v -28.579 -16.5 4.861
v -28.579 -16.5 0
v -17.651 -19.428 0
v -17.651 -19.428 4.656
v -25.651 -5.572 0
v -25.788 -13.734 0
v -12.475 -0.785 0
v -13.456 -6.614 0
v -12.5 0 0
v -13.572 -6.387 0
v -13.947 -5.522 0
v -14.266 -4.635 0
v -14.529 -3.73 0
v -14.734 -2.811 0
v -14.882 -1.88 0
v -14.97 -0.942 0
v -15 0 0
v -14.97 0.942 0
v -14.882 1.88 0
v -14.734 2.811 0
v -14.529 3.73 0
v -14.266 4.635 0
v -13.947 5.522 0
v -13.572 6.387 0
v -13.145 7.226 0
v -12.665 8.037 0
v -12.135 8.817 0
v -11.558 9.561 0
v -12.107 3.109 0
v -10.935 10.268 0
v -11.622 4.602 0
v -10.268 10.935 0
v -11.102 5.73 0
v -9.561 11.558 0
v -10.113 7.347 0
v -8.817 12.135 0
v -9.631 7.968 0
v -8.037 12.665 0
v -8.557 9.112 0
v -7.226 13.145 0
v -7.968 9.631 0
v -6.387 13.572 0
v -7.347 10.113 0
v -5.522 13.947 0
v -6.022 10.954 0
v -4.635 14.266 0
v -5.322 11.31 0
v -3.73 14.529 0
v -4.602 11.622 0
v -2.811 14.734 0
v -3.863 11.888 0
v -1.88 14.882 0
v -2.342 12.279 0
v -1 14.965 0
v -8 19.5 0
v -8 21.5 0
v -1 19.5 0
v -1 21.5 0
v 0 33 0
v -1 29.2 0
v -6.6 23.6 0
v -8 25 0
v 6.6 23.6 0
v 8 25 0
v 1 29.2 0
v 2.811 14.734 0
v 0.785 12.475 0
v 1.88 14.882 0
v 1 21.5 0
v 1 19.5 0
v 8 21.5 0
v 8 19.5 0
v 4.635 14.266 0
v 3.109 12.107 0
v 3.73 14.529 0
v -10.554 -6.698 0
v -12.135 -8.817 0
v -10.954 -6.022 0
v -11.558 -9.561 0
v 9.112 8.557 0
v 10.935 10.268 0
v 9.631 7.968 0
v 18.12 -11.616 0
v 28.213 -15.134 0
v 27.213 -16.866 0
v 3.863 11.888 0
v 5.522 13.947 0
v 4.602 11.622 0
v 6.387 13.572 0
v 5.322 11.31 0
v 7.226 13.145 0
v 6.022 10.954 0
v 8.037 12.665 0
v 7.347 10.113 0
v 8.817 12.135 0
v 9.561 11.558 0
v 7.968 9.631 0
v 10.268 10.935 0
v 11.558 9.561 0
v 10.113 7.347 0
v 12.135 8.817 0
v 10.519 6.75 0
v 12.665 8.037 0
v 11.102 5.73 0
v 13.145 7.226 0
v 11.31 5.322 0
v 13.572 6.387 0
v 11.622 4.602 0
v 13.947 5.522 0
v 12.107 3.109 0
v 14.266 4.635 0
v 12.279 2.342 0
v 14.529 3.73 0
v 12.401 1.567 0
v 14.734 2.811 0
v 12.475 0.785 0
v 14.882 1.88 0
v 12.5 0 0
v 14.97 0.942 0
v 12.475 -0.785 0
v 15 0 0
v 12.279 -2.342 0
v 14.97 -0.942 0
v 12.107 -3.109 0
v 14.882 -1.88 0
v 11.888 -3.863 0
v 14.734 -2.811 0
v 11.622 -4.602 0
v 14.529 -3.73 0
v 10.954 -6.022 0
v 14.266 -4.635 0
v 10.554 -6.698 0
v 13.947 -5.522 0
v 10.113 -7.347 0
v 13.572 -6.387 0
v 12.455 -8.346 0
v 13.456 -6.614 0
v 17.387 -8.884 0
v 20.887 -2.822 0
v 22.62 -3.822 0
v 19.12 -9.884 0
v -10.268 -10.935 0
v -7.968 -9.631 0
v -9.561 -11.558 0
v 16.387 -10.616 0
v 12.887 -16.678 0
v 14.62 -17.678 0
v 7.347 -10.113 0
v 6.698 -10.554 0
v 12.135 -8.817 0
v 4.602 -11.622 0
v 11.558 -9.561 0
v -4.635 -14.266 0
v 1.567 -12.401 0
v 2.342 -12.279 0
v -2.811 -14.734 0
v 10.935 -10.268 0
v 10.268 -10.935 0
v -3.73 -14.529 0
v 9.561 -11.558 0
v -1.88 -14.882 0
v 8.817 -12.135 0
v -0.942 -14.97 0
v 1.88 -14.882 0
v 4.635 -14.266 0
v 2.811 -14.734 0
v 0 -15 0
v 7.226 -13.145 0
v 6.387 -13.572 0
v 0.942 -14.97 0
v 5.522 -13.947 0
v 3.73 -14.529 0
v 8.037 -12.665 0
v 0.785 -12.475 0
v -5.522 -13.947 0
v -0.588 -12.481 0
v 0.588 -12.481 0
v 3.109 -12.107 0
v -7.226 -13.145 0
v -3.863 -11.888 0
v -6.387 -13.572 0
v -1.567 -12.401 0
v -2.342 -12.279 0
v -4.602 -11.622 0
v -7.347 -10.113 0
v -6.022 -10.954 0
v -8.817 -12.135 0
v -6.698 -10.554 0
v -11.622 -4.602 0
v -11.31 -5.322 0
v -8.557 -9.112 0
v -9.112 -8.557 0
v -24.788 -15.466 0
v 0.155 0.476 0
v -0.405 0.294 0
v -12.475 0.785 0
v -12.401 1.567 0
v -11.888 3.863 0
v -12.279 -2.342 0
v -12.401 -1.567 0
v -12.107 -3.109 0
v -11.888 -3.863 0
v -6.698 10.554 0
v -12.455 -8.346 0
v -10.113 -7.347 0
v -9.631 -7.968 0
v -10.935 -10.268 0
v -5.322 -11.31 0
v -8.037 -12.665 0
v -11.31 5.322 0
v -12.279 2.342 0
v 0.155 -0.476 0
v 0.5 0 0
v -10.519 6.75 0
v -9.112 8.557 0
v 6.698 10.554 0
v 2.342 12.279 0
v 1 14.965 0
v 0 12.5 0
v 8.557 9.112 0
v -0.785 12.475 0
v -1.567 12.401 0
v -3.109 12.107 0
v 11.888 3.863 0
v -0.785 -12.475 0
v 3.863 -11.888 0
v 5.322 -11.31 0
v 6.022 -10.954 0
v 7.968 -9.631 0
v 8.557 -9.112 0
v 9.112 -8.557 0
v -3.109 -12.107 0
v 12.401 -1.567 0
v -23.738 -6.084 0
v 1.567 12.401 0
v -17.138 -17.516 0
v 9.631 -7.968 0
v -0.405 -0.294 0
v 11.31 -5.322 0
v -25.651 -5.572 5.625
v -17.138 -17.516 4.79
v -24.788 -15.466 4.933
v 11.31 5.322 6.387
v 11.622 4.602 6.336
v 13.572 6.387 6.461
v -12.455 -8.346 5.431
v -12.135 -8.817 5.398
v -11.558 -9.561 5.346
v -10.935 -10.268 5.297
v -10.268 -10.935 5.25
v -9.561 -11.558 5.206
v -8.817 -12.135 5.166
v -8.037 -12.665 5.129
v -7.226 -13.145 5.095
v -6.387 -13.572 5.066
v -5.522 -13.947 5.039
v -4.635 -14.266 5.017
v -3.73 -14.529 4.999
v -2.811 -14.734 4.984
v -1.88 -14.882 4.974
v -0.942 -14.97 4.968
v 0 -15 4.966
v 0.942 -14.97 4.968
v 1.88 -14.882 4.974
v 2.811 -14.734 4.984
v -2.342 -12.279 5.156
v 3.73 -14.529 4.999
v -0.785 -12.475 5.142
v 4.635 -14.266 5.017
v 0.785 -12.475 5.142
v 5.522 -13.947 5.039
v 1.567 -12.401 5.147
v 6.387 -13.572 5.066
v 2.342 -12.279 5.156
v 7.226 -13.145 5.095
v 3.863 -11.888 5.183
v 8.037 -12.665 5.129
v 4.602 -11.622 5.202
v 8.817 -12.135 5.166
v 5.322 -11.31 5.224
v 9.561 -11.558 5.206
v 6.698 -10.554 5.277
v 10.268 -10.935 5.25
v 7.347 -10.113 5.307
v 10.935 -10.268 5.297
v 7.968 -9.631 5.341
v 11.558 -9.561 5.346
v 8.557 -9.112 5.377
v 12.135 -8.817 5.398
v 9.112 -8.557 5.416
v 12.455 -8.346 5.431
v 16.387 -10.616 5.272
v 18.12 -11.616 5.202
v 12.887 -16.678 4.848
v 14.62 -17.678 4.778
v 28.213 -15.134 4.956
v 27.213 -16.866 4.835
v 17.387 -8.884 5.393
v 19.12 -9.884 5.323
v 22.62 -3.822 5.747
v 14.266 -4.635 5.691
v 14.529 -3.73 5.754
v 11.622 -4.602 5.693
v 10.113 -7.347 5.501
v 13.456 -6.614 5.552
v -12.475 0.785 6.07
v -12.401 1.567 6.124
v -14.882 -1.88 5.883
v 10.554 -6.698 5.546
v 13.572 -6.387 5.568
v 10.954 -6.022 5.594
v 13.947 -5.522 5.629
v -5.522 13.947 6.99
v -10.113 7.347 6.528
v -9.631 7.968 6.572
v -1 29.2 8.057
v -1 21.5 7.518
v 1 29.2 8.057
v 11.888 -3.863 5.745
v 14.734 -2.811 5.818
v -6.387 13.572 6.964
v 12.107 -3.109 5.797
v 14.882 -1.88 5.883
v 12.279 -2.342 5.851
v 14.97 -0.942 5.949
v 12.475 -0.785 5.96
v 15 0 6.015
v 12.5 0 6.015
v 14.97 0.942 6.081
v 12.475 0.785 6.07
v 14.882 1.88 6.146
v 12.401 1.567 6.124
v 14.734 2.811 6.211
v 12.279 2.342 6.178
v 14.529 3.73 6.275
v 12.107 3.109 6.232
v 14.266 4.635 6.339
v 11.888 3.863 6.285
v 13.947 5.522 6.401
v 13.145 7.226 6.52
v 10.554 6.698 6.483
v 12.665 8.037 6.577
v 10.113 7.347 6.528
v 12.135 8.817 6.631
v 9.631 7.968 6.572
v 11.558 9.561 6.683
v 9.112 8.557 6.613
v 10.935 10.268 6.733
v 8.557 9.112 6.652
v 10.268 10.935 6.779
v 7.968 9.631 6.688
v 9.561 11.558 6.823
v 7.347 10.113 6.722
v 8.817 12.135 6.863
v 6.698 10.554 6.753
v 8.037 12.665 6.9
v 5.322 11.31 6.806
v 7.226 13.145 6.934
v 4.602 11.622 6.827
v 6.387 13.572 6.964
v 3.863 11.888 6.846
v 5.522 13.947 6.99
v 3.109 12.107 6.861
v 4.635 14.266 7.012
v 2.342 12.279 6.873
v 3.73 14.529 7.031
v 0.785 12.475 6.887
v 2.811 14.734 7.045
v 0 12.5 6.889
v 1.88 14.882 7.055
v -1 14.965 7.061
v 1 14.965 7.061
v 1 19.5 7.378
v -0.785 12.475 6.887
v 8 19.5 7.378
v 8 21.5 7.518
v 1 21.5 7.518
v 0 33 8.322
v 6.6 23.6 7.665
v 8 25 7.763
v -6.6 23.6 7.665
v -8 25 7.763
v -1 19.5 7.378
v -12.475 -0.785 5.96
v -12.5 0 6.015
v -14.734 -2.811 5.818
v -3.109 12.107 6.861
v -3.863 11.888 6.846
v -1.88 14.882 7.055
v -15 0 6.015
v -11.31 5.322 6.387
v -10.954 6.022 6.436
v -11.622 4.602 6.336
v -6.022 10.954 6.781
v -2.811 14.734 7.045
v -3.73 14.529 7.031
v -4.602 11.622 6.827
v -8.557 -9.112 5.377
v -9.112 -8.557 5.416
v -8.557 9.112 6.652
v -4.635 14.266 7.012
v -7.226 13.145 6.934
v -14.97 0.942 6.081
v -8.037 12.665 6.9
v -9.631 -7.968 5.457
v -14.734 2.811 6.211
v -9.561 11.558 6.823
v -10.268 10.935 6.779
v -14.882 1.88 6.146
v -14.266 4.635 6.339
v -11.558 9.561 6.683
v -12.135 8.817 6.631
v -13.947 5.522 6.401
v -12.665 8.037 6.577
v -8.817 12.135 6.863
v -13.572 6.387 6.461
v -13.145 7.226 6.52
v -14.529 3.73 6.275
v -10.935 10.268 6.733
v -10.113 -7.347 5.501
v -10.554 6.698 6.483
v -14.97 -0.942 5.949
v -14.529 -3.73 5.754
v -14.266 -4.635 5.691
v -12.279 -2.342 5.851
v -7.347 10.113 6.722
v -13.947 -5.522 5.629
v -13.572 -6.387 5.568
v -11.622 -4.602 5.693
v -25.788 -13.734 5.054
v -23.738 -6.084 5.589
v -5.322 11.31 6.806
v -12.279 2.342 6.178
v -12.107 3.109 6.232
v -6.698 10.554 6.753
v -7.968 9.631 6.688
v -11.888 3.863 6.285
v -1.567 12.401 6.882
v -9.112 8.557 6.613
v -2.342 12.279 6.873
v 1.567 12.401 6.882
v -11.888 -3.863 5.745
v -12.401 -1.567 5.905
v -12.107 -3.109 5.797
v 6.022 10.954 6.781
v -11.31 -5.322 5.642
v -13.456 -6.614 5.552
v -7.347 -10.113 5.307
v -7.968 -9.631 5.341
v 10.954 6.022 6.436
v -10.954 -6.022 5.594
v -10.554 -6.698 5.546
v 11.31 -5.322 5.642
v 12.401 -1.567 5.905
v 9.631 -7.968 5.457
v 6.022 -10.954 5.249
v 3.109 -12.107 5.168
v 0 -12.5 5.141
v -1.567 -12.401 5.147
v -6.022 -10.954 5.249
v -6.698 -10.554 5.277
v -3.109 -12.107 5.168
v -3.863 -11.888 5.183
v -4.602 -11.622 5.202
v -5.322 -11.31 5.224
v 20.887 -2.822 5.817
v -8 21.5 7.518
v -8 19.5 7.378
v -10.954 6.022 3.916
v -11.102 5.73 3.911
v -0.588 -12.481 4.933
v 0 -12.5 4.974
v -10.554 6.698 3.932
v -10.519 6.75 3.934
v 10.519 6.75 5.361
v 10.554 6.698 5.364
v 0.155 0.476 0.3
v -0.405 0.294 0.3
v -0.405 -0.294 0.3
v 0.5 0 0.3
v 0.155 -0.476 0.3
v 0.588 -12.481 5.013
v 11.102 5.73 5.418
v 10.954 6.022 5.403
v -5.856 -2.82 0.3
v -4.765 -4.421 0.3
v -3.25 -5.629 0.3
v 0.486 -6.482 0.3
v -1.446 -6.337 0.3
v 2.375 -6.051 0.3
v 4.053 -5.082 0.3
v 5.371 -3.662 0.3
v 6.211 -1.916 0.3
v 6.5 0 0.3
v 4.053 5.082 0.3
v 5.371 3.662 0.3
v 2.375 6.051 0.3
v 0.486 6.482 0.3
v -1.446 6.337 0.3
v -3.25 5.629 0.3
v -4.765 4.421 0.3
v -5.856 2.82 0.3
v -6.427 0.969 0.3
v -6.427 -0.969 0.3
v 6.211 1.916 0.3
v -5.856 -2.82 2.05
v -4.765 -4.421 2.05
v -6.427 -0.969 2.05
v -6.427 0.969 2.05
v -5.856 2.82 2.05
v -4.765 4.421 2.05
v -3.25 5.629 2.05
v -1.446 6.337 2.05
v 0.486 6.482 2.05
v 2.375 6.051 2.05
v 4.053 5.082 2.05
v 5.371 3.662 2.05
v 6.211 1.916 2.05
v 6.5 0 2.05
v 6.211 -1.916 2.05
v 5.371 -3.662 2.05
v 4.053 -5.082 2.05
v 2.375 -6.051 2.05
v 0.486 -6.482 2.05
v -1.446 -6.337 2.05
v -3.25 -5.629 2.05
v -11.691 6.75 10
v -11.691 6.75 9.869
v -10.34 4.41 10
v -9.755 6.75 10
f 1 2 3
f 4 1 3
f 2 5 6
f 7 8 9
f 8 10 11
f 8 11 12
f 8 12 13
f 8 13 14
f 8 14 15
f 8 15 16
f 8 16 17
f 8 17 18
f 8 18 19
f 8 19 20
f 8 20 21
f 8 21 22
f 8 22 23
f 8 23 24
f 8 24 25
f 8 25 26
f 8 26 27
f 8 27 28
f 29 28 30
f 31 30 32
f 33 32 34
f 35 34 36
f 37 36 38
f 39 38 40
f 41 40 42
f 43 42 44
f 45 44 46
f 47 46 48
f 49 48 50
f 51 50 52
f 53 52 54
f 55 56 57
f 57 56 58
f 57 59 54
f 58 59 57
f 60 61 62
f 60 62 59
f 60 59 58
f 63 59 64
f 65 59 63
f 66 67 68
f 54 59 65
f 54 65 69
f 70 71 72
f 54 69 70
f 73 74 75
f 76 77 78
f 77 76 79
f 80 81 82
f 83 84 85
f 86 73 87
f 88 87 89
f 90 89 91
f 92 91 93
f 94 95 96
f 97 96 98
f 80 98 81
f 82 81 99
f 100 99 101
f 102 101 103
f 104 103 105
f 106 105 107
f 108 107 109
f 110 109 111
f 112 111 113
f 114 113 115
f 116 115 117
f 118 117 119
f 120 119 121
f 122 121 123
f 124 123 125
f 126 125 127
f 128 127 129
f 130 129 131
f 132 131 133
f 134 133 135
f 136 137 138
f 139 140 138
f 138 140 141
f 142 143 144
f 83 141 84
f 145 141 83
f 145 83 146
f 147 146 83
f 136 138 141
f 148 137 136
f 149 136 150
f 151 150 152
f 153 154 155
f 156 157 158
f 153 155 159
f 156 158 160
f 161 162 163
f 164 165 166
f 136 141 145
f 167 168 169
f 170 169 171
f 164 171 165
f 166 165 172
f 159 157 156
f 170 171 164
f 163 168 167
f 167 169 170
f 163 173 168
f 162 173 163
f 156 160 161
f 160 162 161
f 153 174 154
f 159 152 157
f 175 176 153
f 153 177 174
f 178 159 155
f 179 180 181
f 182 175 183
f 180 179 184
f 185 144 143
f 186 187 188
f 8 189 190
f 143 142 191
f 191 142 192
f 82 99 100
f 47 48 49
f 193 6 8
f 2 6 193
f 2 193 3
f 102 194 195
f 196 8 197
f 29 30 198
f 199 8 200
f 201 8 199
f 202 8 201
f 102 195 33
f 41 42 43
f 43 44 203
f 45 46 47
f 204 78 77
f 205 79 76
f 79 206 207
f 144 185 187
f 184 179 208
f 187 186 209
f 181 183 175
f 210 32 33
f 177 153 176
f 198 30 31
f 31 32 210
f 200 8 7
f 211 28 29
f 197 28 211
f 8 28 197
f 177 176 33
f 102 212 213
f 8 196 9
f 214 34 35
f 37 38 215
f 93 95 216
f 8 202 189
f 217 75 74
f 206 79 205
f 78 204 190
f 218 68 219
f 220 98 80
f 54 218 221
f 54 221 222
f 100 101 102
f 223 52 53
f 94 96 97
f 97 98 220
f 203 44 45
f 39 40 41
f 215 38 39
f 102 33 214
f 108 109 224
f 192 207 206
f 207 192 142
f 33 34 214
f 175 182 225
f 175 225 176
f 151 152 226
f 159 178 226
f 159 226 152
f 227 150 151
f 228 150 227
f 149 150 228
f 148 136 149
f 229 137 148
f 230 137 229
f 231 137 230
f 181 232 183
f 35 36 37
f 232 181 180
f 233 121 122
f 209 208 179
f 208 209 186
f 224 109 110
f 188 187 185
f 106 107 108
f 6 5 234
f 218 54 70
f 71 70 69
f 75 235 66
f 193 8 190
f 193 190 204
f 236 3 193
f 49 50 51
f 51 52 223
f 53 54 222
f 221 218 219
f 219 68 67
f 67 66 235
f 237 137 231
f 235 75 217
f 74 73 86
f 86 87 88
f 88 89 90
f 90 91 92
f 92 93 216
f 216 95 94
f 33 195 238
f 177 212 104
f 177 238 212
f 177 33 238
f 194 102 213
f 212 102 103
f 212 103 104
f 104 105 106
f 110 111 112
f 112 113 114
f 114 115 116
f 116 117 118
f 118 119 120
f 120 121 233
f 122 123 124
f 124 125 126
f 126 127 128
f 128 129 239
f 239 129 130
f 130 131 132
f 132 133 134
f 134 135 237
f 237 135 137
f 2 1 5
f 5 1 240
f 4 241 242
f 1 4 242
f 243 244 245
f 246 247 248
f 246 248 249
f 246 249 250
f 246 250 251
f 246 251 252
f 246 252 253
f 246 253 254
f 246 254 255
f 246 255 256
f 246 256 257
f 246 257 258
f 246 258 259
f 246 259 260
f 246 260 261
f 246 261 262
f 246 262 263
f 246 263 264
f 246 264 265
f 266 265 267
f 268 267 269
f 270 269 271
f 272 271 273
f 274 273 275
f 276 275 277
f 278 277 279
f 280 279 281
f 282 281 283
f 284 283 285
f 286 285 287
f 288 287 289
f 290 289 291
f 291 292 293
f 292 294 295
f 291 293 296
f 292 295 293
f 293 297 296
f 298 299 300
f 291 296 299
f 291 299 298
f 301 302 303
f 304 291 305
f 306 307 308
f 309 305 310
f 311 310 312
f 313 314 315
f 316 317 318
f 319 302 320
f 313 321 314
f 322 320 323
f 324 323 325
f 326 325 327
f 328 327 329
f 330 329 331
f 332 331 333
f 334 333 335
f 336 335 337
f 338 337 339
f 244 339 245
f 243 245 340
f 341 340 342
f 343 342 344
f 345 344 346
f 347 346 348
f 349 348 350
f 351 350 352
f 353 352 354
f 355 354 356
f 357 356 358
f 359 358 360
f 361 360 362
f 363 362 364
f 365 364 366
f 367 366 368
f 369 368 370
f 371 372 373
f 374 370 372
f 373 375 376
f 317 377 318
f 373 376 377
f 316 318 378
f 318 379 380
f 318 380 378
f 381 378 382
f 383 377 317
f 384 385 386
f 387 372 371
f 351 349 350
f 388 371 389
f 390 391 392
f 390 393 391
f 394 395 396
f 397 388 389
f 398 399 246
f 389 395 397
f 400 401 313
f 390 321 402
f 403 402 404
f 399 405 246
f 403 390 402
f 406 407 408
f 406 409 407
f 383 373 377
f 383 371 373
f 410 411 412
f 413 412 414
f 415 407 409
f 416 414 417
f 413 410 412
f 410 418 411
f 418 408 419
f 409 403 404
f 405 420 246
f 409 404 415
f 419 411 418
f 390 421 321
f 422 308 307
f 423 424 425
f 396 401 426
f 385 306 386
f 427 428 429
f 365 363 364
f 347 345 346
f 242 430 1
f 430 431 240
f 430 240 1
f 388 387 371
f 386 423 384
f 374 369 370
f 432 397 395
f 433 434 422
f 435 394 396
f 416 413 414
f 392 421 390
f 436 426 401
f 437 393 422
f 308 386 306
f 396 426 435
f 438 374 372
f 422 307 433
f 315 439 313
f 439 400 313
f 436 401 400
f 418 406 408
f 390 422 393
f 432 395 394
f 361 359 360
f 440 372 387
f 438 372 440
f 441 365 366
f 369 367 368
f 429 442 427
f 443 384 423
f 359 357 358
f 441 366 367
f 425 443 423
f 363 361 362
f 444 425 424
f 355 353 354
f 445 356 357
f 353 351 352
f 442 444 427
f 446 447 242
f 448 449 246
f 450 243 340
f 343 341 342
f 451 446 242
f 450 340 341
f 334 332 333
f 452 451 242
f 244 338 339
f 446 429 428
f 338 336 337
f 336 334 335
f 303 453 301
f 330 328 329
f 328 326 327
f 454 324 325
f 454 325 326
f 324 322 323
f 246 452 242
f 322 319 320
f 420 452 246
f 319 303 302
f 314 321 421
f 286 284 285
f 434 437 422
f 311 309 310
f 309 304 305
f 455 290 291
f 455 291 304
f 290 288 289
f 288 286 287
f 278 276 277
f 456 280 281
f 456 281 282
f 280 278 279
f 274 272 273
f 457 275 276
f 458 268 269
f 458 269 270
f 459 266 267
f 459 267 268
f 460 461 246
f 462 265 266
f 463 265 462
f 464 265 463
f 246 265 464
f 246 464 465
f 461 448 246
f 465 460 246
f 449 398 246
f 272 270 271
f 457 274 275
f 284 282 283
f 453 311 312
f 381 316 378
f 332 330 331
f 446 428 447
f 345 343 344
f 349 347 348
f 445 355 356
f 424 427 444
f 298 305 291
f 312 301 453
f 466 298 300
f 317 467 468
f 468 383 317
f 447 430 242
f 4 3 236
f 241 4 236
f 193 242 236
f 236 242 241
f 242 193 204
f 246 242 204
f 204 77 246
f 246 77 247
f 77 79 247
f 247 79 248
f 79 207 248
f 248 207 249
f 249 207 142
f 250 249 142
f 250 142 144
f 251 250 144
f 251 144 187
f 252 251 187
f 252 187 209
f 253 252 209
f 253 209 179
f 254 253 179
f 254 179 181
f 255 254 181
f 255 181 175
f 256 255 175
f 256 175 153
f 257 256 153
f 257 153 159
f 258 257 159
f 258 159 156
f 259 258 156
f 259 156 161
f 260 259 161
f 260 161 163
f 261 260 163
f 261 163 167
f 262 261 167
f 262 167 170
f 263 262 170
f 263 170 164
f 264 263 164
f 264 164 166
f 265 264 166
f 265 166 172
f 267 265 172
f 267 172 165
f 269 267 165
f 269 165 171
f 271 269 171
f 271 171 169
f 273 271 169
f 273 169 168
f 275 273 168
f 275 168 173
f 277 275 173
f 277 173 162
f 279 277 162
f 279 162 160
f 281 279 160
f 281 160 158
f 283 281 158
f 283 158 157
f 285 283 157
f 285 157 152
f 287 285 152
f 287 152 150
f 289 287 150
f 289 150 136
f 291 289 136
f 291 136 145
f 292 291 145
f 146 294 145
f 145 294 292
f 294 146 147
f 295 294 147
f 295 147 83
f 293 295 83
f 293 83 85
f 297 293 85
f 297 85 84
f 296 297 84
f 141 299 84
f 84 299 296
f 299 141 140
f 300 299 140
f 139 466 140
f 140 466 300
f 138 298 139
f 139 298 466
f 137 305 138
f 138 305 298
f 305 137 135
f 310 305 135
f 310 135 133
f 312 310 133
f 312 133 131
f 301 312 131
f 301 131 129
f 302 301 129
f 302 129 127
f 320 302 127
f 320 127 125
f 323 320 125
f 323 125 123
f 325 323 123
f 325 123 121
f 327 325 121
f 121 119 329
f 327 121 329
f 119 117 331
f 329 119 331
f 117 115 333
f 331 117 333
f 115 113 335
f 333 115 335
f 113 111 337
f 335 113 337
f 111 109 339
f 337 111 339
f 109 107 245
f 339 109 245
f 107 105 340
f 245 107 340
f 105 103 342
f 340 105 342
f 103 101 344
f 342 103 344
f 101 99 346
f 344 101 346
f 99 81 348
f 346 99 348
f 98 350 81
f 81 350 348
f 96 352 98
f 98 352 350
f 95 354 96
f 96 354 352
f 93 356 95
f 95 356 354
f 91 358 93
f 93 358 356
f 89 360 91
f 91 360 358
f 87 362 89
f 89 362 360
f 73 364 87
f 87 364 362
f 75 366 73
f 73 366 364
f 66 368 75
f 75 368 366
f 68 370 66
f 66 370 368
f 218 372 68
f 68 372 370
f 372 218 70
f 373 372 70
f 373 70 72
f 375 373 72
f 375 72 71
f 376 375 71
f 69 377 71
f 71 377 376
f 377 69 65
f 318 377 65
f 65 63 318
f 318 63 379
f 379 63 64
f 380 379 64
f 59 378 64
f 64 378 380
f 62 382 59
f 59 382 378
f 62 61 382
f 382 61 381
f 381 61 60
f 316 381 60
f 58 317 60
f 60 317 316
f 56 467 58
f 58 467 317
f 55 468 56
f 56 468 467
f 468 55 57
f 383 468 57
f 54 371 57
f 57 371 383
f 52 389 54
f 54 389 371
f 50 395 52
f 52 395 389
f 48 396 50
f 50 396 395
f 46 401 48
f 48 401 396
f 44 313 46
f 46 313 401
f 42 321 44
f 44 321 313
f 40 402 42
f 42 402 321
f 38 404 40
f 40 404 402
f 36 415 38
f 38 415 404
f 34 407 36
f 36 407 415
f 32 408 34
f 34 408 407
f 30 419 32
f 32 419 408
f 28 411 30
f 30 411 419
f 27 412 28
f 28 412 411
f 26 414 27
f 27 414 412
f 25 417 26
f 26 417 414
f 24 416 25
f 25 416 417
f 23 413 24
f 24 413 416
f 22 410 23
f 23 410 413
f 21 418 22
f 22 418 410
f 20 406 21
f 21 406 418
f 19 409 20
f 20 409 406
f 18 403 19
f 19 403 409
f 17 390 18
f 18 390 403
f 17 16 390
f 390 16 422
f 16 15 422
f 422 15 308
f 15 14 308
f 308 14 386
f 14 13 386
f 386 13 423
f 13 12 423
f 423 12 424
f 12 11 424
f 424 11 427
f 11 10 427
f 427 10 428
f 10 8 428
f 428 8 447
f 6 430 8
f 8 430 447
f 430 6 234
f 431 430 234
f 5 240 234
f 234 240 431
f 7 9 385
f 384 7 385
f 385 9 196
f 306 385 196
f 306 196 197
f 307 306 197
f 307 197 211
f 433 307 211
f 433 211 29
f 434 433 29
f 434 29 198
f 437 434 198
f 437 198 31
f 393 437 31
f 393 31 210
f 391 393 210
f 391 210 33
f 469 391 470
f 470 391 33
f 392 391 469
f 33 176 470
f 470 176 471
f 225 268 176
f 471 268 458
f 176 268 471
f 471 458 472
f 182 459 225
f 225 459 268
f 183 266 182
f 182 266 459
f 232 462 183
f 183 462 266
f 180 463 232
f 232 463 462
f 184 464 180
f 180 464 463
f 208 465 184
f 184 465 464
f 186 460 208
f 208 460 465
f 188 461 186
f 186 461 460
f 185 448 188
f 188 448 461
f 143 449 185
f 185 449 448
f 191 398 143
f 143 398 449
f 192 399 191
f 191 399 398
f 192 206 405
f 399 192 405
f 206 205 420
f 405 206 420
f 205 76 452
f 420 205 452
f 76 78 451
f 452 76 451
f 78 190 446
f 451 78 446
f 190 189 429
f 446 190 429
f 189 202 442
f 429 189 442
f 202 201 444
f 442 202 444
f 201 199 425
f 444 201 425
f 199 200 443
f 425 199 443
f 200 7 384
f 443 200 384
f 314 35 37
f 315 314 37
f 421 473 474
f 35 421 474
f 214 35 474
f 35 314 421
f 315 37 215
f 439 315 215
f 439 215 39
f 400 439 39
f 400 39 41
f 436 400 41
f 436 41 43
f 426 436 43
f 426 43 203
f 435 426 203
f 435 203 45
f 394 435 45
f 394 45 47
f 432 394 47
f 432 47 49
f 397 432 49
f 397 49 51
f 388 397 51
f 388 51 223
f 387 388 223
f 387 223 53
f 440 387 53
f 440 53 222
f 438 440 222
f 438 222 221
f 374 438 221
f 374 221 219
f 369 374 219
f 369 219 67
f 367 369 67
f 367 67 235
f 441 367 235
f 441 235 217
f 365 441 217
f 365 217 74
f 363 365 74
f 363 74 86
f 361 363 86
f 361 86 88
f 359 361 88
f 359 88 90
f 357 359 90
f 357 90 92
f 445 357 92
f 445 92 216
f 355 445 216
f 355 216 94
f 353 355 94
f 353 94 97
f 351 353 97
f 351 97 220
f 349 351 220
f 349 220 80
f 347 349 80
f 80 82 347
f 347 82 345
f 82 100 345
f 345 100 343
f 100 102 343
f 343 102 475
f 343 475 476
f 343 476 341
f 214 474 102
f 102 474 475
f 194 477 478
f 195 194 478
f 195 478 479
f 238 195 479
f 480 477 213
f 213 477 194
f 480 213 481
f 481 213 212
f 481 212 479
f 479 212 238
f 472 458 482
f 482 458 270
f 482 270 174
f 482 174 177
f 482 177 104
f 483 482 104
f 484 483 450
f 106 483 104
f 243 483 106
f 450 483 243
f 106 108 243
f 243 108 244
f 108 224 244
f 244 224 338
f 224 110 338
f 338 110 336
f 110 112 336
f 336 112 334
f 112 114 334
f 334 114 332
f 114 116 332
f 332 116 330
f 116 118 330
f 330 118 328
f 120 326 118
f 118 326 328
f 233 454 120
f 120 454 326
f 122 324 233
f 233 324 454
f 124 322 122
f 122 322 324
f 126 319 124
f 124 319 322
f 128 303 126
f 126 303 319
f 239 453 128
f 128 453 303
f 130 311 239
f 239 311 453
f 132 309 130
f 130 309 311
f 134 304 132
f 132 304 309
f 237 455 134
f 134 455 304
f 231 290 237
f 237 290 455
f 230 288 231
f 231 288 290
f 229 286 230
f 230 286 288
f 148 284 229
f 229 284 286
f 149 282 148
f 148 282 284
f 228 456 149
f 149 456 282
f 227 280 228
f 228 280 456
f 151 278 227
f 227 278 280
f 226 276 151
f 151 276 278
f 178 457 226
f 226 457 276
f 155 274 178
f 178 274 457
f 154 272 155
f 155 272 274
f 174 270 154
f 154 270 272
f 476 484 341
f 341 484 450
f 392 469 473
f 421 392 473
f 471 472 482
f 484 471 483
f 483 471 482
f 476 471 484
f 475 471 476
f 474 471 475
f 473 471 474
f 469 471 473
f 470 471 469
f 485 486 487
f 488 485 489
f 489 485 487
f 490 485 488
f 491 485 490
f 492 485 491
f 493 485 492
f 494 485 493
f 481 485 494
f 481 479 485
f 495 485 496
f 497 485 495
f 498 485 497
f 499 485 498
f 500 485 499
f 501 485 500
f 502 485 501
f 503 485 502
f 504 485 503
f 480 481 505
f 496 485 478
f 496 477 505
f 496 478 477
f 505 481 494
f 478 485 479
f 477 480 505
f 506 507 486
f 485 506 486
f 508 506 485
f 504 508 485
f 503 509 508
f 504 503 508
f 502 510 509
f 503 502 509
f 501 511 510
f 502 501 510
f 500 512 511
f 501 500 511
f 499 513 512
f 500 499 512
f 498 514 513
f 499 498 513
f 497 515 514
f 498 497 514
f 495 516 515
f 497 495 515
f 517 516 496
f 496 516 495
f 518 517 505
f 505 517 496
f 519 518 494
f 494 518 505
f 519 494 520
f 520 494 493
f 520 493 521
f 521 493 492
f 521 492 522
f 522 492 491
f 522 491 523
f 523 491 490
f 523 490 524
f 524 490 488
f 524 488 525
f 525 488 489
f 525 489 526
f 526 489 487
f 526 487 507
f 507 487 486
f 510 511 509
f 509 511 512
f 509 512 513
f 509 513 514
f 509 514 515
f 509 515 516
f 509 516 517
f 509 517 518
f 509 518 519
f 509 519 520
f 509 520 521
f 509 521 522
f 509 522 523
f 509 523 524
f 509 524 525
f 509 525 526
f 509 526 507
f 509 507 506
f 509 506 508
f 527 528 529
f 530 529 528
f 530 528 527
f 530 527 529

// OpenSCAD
module arrow(l = 10, t = 2.5) {
	polygon(points=[[0,0],[l,-l],[l-t,-l-t],[0,-2*t],[-l+t,-l-t],[-l,-l]],paths=[[0,1,2,3,4,5,6]]);
}

module arm(f = false,m = false) {
	translate([-1,14])
		square([2,18]);
	if (f) {
		translate ([-8,19.5])
			square([16,2]);
	}
	if (m) {
		translate([0,33])
			arrow(8,1.4);
	}
}

difference() {
	linear_extrude(height=10) {
		difference() {
			circle(r=15,$fn=100);
			circle(r=12.5,$fn=100);
		}
		arm(f = true, m = true);
		rotate(a=120, v=[0,0,1]) arm(m = true);
		rotate(a=240, v=[0,0,1]) arm(f = true);
	}
	rotate(a=4, v=[1,0,0])
		translate([-50,-50,6])
		cube([100,100,6]);
}

difference() {
	linear_extrude(height=10)
		rotate(a=30, v=[0,0,1])
		circle(r=13.5,$fn=3);
	rotate(a=-4, v=[1,4,0])
		translate([-50,-50,4.75])
		cube([100,100,6]);
	translate([0,0,0.3])     cylinder(1.75,6.5,6.5);
	translate([0,0,-0.1])    cylinder(1.75,0.5,0.5);
}
